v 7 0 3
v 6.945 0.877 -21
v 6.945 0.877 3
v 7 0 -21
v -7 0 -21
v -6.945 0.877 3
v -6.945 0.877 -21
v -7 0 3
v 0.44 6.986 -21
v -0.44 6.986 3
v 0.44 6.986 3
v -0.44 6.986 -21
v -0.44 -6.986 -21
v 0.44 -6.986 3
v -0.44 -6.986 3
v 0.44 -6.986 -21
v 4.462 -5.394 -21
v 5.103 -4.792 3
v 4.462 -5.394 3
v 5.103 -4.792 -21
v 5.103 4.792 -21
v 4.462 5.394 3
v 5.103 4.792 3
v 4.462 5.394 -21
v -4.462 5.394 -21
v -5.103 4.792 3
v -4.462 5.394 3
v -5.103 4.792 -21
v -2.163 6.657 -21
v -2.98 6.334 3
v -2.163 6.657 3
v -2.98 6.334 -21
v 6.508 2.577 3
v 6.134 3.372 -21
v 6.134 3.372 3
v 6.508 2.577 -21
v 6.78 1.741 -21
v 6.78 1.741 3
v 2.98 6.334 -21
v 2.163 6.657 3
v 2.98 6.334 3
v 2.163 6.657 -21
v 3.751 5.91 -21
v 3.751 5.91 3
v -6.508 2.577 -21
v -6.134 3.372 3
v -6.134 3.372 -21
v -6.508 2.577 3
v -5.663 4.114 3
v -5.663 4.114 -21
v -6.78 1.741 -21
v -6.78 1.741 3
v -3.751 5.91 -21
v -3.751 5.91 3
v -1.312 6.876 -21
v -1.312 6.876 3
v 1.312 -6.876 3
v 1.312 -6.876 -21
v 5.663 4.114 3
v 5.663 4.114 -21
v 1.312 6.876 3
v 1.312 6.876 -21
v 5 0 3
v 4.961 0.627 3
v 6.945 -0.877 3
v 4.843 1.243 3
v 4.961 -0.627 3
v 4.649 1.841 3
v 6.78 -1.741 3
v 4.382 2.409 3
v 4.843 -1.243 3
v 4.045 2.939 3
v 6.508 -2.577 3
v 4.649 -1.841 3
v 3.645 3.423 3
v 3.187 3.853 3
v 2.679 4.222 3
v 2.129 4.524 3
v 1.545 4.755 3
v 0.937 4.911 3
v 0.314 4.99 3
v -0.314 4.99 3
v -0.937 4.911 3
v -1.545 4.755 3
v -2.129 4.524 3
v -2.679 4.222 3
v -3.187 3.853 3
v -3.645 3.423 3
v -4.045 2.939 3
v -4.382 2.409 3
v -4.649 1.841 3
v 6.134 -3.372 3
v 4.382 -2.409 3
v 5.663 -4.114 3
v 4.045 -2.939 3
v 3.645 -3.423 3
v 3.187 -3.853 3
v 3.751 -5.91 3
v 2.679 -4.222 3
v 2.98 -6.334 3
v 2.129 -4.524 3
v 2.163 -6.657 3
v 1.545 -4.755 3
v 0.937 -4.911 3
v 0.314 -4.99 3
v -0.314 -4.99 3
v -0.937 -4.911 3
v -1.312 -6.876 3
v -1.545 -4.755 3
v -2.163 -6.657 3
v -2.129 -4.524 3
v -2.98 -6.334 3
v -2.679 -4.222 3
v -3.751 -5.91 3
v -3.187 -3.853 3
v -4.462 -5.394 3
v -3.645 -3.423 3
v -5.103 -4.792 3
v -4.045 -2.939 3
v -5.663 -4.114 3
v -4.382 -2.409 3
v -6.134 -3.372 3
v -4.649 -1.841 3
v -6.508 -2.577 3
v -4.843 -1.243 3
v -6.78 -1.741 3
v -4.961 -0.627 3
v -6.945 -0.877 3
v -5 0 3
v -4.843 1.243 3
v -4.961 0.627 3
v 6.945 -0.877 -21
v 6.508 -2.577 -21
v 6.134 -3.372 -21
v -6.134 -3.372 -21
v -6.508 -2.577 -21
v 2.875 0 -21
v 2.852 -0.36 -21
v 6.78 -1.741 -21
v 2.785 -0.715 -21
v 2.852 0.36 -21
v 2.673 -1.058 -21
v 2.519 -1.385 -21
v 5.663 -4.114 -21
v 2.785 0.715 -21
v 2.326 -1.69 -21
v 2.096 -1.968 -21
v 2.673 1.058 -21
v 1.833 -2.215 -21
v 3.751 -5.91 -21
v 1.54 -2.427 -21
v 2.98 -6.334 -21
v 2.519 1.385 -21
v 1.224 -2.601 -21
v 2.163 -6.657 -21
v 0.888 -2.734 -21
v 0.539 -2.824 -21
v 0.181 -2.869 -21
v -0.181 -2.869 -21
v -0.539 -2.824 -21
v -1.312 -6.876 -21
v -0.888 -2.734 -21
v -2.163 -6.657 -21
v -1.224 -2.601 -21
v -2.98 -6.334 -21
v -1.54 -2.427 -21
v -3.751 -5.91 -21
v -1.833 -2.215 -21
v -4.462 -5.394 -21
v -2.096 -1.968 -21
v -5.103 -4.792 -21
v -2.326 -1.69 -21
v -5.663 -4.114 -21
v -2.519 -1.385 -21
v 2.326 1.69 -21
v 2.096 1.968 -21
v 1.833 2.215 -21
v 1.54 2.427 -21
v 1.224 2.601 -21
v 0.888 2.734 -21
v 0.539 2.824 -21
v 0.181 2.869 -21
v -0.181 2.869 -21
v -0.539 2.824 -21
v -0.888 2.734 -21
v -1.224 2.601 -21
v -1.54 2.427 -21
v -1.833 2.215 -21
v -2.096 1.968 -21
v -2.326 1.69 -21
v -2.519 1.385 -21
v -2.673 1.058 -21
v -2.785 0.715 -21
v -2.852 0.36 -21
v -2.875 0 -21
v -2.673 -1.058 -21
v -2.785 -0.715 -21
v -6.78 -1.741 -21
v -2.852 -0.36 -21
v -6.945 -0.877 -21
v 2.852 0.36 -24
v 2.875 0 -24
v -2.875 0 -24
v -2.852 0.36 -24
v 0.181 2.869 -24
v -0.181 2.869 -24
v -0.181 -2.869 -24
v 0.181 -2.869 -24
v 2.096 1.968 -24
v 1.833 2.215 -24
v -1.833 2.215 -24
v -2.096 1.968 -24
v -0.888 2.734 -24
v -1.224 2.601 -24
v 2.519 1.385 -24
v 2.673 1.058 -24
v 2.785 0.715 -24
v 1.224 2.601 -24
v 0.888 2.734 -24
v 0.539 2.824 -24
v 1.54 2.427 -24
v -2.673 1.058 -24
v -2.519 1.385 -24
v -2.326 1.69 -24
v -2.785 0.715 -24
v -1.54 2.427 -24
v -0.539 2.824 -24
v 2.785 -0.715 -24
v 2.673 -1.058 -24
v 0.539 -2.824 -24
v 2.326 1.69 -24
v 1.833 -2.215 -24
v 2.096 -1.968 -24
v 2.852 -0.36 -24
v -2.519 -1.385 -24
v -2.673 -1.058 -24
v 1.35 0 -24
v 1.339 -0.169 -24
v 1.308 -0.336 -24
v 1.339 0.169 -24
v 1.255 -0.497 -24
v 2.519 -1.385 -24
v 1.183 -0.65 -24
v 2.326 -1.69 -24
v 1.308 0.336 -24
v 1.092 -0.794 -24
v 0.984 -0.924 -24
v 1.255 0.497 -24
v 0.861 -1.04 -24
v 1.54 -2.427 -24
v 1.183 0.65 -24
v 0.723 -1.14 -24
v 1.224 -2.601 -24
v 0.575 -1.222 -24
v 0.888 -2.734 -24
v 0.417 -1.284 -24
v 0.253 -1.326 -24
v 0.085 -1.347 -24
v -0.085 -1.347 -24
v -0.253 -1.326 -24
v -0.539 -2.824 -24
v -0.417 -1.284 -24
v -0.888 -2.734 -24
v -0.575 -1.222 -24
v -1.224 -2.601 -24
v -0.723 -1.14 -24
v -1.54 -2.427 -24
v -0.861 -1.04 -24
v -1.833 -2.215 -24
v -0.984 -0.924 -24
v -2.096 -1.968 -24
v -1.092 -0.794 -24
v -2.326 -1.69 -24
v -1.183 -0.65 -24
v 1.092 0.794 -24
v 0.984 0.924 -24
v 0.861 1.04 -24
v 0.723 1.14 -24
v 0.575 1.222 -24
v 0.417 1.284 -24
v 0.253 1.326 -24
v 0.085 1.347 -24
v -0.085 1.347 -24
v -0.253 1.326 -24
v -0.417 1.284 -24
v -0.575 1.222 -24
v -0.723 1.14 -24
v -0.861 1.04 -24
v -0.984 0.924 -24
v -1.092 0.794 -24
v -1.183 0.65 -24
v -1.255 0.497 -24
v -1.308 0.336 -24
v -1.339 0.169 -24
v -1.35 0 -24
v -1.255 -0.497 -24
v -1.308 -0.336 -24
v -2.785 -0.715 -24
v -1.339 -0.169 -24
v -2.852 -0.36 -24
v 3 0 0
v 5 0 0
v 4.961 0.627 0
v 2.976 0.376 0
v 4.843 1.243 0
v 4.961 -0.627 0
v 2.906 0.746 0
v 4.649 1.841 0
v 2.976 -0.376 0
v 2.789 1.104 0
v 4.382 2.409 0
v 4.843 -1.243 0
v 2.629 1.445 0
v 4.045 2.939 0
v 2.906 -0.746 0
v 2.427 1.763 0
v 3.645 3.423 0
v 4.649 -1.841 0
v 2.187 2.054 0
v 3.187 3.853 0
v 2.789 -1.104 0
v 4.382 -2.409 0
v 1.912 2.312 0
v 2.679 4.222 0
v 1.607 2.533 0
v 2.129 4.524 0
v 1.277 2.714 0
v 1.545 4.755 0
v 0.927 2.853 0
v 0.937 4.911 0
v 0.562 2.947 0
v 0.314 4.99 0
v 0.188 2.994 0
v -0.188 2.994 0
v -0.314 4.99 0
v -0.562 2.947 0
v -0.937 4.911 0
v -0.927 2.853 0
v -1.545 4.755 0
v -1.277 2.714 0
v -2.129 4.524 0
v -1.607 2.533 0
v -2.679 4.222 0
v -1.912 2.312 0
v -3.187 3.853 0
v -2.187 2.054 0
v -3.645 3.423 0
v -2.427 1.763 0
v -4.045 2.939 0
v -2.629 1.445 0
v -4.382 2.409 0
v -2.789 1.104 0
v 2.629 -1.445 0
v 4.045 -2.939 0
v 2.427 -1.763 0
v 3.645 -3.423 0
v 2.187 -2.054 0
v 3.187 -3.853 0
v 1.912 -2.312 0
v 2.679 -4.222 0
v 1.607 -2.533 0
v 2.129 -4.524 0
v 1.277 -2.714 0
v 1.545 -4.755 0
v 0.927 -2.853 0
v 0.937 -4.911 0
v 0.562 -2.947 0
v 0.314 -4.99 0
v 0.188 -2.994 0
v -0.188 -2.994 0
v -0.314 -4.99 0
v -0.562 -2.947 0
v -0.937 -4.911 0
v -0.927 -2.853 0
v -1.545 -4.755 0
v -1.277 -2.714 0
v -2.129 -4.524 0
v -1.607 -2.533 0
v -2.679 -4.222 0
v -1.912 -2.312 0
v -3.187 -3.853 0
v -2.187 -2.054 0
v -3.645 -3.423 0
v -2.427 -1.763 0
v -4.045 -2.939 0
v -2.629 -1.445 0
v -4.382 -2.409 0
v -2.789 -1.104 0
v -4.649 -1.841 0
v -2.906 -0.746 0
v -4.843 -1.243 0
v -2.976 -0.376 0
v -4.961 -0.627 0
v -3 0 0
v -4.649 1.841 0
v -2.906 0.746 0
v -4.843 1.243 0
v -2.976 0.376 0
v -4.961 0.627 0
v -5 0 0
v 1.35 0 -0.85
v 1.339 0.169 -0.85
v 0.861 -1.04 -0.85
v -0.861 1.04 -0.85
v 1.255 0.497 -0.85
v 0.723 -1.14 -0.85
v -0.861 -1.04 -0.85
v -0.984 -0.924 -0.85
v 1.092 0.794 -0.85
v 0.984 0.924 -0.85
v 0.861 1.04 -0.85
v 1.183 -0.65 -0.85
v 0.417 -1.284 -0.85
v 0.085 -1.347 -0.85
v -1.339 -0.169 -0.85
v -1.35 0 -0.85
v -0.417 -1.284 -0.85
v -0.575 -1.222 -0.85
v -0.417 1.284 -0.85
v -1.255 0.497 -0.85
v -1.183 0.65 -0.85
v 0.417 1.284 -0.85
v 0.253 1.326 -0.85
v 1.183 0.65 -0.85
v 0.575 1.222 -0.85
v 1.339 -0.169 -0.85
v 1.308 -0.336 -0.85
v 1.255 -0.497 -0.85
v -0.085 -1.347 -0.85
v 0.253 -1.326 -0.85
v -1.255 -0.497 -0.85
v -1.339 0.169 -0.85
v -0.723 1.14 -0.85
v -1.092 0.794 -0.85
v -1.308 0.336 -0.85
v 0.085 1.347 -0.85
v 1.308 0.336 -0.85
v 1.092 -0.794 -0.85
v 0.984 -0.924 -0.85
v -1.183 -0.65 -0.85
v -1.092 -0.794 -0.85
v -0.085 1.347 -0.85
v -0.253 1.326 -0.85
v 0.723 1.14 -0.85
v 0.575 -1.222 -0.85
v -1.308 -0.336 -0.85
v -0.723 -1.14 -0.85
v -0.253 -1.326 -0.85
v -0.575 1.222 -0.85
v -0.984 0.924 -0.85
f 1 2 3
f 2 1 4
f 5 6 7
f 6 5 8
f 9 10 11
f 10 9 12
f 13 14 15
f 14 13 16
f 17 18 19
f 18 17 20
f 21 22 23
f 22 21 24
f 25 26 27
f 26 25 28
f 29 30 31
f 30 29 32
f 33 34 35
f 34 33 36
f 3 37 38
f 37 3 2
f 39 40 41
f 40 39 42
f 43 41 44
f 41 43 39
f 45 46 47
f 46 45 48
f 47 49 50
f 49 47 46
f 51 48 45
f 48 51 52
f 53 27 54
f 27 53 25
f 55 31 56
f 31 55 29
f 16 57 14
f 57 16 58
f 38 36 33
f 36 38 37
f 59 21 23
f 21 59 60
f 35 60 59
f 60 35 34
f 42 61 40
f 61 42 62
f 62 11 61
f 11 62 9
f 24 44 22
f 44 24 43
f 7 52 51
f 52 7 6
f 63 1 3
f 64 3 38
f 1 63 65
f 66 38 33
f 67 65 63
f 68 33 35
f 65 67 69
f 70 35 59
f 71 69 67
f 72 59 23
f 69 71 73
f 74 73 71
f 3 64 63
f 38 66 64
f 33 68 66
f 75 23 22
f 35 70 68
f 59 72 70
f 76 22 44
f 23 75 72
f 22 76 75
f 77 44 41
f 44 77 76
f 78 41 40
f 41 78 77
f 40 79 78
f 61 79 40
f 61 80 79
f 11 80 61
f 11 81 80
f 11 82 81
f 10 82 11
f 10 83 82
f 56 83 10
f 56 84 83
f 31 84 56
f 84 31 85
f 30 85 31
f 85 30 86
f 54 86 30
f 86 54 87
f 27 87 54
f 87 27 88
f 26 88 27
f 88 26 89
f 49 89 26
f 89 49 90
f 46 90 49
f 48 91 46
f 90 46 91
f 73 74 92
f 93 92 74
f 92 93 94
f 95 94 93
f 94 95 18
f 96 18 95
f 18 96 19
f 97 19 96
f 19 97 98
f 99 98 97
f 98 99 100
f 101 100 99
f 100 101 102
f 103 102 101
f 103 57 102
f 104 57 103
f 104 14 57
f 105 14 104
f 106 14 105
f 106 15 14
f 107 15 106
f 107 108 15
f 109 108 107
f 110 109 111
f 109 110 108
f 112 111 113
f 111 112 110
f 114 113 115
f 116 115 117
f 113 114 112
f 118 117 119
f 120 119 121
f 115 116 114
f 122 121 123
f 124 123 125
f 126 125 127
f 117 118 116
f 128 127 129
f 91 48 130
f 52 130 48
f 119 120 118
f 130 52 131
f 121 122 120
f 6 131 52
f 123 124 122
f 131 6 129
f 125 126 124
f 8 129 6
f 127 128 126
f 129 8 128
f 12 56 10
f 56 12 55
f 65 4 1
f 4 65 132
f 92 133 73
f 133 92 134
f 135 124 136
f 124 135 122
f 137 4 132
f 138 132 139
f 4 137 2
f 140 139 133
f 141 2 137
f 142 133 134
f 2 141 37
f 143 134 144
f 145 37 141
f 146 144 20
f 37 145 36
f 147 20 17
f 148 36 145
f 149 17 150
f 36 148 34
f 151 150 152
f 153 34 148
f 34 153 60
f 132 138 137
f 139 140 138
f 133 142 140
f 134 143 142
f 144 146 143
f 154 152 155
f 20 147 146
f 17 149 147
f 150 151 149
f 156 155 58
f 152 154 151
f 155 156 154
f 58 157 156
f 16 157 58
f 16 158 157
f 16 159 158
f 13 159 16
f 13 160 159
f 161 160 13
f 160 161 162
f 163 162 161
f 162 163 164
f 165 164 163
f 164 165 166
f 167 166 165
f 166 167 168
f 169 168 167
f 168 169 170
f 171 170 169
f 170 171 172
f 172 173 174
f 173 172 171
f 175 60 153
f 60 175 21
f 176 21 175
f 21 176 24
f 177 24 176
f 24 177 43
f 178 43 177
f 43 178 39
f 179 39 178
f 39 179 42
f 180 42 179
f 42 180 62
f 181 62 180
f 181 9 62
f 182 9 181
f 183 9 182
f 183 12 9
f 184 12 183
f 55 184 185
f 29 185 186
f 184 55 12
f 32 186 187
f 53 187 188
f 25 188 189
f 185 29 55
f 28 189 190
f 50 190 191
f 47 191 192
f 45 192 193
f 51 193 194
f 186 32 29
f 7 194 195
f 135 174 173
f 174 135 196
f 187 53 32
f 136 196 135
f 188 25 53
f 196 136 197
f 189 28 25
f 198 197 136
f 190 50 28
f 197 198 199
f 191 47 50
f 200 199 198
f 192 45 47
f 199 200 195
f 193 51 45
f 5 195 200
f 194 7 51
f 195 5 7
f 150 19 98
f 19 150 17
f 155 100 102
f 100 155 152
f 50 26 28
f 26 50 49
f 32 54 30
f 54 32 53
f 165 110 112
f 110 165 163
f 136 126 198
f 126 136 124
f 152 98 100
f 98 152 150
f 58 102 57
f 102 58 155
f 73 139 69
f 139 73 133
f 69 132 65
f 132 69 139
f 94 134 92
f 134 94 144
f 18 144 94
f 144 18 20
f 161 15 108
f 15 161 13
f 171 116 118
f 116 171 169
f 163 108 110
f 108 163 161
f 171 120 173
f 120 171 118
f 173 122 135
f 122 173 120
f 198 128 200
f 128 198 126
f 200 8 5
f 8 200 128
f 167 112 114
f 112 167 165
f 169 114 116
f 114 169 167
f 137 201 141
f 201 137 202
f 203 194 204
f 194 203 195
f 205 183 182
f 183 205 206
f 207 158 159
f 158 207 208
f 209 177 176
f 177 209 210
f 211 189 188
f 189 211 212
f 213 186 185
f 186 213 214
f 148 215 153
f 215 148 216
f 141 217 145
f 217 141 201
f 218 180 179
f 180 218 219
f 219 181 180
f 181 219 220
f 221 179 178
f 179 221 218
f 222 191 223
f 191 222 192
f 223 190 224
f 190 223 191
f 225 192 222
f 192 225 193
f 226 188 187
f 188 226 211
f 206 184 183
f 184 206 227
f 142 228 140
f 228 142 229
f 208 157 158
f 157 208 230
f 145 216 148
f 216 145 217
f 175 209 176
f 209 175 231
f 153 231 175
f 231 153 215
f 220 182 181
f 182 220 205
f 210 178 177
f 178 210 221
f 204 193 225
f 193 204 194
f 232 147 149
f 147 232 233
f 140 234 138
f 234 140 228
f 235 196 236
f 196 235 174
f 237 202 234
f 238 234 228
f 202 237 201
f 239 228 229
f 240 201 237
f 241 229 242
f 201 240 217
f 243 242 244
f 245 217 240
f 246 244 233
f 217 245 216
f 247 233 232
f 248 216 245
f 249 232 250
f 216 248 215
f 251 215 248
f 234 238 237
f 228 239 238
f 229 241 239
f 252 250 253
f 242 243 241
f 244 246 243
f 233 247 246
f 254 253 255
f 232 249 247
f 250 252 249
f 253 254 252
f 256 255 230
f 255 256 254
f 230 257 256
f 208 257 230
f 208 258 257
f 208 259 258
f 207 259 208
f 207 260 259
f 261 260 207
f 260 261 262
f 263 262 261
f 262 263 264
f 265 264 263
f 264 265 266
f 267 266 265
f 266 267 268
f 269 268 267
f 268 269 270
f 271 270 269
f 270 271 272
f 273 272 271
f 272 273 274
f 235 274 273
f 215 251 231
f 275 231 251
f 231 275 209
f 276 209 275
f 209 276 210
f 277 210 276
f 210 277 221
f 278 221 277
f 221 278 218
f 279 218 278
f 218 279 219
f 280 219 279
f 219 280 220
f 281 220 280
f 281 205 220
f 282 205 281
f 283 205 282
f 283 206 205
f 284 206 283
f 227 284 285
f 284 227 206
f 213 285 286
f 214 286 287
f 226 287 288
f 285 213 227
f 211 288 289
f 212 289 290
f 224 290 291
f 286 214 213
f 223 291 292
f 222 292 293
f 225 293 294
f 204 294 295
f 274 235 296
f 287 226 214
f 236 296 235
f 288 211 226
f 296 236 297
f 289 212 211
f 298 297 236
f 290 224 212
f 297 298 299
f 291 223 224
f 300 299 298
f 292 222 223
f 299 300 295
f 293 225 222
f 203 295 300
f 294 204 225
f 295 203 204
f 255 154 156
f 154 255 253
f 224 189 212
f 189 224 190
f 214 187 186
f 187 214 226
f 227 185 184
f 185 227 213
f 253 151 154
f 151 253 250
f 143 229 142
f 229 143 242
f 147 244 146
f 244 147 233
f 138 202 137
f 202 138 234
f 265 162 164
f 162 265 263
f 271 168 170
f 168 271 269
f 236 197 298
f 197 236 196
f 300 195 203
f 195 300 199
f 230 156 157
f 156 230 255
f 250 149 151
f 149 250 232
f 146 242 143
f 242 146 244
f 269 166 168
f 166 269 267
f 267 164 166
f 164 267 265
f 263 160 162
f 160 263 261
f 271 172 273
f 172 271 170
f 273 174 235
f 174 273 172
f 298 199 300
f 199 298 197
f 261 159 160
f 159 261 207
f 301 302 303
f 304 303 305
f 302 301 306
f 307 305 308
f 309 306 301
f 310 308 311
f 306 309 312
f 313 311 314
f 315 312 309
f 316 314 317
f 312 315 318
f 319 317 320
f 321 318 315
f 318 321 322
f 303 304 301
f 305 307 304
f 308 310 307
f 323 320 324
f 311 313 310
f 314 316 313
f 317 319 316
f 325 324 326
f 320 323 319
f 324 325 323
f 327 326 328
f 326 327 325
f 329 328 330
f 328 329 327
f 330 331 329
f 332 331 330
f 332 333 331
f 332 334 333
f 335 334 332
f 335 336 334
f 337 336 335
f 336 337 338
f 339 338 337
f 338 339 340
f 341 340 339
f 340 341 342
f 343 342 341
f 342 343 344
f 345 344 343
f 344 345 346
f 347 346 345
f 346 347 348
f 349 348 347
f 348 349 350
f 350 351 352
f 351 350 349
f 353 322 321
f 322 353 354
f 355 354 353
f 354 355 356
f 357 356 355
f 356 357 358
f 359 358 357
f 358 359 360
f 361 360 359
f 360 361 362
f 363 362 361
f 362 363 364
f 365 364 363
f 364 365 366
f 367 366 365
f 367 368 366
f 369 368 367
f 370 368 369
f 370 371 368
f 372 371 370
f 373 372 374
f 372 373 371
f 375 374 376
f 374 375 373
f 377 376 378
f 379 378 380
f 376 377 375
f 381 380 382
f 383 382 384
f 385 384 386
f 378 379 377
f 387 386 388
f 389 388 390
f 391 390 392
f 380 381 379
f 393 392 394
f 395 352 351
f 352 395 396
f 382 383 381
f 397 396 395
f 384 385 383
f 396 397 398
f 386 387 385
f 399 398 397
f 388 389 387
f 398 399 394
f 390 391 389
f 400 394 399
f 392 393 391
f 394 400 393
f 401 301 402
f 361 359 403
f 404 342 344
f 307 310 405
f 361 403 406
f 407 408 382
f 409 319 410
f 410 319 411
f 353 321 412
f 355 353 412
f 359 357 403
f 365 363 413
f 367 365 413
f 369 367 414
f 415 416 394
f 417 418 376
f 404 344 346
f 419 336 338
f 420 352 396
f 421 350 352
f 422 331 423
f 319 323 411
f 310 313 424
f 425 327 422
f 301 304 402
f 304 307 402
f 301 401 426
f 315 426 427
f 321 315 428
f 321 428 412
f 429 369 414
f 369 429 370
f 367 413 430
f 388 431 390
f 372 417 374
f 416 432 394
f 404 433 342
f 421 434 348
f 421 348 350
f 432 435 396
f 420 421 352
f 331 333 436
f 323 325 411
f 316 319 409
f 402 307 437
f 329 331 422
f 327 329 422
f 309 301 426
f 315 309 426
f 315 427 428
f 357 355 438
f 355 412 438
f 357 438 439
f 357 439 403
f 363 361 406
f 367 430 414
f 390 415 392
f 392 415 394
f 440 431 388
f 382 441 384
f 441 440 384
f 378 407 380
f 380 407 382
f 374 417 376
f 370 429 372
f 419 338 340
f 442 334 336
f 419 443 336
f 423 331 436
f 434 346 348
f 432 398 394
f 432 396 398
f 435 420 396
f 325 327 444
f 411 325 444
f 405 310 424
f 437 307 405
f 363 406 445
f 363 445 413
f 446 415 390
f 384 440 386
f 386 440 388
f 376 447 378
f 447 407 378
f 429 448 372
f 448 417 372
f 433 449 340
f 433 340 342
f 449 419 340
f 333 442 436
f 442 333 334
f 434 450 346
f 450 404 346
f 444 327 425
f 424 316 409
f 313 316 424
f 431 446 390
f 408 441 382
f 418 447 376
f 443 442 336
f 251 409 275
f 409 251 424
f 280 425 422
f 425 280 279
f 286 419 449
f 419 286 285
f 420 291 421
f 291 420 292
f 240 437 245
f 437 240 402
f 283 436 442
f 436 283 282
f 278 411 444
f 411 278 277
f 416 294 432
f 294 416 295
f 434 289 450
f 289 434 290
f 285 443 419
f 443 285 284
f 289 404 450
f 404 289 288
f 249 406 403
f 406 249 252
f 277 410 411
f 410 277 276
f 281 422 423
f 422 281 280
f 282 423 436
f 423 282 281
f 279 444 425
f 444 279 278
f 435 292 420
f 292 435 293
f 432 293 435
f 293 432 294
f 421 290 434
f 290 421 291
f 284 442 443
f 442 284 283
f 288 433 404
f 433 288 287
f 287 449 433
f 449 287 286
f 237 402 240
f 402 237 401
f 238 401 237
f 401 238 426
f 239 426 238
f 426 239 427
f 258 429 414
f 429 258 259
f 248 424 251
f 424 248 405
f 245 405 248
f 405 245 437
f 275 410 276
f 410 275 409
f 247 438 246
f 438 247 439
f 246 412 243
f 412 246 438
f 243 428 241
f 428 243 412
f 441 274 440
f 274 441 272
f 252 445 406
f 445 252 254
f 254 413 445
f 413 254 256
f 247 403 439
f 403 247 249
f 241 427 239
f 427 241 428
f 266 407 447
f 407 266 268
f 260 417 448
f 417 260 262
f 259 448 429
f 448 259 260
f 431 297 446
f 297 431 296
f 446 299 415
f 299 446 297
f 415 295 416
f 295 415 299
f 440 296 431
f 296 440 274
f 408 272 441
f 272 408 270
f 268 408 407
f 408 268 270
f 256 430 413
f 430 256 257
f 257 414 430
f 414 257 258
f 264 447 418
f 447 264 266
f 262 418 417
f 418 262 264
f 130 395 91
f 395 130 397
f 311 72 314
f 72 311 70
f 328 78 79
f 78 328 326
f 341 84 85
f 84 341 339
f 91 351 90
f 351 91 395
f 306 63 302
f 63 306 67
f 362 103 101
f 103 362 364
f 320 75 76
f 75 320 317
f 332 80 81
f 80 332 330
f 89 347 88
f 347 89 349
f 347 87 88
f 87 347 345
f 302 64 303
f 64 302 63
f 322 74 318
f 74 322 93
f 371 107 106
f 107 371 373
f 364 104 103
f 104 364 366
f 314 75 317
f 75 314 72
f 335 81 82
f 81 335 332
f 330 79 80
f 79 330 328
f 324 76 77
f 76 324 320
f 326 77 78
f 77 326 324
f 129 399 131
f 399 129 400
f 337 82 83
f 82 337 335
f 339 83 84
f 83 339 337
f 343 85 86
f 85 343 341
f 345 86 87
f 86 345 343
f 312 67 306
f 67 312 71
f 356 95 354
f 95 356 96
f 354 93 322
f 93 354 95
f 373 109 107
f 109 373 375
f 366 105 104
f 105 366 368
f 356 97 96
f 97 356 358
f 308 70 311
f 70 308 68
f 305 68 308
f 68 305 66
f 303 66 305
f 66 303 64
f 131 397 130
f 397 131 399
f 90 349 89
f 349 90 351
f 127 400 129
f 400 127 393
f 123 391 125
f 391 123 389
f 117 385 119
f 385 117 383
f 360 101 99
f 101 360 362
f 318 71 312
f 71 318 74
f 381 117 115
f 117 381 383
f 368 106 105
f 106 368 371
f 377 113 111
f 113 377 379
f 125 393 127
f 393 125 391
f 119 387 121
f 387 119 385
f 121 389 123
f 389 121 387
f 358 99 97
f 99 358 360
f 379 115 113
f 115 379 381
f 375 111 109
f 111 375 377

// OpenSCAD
$fn = 50;

difference() {
	union() {
		translate(v = [0, 0, -21.0]) {
			cylinder(h = 24, r = 7.0);
		}
		#translate(v = [0, 0, -24.0]) {
			cylinder(h = 24, r = 2.875);
		}
	}
	union() {
		translate(v = [0, 0, 0]) {
			rotate(a = [0, 0, 0]) {
				difference() {
					union() {
						translate(v = [0, 0, -24.0]) {
							cylinder(h = 24, r = 1.0);
						}
						translate(v = [0, 0, -0.85]) {
							cylinder(h = 0.85, r1 = 1.35, r2 = 3.0);
						}
						translate(v = [0, 0, -24.0]) {
							cylinder(h = 24, r = 1.35);
						}
						translate(v = [0, 0, -24.0]) {
							cylinder(h = 24, r = 1.0);
						}
					}
					union();
				}
			}
		}
		#cylinder(h = 3, r = 5.0);
	}
}
